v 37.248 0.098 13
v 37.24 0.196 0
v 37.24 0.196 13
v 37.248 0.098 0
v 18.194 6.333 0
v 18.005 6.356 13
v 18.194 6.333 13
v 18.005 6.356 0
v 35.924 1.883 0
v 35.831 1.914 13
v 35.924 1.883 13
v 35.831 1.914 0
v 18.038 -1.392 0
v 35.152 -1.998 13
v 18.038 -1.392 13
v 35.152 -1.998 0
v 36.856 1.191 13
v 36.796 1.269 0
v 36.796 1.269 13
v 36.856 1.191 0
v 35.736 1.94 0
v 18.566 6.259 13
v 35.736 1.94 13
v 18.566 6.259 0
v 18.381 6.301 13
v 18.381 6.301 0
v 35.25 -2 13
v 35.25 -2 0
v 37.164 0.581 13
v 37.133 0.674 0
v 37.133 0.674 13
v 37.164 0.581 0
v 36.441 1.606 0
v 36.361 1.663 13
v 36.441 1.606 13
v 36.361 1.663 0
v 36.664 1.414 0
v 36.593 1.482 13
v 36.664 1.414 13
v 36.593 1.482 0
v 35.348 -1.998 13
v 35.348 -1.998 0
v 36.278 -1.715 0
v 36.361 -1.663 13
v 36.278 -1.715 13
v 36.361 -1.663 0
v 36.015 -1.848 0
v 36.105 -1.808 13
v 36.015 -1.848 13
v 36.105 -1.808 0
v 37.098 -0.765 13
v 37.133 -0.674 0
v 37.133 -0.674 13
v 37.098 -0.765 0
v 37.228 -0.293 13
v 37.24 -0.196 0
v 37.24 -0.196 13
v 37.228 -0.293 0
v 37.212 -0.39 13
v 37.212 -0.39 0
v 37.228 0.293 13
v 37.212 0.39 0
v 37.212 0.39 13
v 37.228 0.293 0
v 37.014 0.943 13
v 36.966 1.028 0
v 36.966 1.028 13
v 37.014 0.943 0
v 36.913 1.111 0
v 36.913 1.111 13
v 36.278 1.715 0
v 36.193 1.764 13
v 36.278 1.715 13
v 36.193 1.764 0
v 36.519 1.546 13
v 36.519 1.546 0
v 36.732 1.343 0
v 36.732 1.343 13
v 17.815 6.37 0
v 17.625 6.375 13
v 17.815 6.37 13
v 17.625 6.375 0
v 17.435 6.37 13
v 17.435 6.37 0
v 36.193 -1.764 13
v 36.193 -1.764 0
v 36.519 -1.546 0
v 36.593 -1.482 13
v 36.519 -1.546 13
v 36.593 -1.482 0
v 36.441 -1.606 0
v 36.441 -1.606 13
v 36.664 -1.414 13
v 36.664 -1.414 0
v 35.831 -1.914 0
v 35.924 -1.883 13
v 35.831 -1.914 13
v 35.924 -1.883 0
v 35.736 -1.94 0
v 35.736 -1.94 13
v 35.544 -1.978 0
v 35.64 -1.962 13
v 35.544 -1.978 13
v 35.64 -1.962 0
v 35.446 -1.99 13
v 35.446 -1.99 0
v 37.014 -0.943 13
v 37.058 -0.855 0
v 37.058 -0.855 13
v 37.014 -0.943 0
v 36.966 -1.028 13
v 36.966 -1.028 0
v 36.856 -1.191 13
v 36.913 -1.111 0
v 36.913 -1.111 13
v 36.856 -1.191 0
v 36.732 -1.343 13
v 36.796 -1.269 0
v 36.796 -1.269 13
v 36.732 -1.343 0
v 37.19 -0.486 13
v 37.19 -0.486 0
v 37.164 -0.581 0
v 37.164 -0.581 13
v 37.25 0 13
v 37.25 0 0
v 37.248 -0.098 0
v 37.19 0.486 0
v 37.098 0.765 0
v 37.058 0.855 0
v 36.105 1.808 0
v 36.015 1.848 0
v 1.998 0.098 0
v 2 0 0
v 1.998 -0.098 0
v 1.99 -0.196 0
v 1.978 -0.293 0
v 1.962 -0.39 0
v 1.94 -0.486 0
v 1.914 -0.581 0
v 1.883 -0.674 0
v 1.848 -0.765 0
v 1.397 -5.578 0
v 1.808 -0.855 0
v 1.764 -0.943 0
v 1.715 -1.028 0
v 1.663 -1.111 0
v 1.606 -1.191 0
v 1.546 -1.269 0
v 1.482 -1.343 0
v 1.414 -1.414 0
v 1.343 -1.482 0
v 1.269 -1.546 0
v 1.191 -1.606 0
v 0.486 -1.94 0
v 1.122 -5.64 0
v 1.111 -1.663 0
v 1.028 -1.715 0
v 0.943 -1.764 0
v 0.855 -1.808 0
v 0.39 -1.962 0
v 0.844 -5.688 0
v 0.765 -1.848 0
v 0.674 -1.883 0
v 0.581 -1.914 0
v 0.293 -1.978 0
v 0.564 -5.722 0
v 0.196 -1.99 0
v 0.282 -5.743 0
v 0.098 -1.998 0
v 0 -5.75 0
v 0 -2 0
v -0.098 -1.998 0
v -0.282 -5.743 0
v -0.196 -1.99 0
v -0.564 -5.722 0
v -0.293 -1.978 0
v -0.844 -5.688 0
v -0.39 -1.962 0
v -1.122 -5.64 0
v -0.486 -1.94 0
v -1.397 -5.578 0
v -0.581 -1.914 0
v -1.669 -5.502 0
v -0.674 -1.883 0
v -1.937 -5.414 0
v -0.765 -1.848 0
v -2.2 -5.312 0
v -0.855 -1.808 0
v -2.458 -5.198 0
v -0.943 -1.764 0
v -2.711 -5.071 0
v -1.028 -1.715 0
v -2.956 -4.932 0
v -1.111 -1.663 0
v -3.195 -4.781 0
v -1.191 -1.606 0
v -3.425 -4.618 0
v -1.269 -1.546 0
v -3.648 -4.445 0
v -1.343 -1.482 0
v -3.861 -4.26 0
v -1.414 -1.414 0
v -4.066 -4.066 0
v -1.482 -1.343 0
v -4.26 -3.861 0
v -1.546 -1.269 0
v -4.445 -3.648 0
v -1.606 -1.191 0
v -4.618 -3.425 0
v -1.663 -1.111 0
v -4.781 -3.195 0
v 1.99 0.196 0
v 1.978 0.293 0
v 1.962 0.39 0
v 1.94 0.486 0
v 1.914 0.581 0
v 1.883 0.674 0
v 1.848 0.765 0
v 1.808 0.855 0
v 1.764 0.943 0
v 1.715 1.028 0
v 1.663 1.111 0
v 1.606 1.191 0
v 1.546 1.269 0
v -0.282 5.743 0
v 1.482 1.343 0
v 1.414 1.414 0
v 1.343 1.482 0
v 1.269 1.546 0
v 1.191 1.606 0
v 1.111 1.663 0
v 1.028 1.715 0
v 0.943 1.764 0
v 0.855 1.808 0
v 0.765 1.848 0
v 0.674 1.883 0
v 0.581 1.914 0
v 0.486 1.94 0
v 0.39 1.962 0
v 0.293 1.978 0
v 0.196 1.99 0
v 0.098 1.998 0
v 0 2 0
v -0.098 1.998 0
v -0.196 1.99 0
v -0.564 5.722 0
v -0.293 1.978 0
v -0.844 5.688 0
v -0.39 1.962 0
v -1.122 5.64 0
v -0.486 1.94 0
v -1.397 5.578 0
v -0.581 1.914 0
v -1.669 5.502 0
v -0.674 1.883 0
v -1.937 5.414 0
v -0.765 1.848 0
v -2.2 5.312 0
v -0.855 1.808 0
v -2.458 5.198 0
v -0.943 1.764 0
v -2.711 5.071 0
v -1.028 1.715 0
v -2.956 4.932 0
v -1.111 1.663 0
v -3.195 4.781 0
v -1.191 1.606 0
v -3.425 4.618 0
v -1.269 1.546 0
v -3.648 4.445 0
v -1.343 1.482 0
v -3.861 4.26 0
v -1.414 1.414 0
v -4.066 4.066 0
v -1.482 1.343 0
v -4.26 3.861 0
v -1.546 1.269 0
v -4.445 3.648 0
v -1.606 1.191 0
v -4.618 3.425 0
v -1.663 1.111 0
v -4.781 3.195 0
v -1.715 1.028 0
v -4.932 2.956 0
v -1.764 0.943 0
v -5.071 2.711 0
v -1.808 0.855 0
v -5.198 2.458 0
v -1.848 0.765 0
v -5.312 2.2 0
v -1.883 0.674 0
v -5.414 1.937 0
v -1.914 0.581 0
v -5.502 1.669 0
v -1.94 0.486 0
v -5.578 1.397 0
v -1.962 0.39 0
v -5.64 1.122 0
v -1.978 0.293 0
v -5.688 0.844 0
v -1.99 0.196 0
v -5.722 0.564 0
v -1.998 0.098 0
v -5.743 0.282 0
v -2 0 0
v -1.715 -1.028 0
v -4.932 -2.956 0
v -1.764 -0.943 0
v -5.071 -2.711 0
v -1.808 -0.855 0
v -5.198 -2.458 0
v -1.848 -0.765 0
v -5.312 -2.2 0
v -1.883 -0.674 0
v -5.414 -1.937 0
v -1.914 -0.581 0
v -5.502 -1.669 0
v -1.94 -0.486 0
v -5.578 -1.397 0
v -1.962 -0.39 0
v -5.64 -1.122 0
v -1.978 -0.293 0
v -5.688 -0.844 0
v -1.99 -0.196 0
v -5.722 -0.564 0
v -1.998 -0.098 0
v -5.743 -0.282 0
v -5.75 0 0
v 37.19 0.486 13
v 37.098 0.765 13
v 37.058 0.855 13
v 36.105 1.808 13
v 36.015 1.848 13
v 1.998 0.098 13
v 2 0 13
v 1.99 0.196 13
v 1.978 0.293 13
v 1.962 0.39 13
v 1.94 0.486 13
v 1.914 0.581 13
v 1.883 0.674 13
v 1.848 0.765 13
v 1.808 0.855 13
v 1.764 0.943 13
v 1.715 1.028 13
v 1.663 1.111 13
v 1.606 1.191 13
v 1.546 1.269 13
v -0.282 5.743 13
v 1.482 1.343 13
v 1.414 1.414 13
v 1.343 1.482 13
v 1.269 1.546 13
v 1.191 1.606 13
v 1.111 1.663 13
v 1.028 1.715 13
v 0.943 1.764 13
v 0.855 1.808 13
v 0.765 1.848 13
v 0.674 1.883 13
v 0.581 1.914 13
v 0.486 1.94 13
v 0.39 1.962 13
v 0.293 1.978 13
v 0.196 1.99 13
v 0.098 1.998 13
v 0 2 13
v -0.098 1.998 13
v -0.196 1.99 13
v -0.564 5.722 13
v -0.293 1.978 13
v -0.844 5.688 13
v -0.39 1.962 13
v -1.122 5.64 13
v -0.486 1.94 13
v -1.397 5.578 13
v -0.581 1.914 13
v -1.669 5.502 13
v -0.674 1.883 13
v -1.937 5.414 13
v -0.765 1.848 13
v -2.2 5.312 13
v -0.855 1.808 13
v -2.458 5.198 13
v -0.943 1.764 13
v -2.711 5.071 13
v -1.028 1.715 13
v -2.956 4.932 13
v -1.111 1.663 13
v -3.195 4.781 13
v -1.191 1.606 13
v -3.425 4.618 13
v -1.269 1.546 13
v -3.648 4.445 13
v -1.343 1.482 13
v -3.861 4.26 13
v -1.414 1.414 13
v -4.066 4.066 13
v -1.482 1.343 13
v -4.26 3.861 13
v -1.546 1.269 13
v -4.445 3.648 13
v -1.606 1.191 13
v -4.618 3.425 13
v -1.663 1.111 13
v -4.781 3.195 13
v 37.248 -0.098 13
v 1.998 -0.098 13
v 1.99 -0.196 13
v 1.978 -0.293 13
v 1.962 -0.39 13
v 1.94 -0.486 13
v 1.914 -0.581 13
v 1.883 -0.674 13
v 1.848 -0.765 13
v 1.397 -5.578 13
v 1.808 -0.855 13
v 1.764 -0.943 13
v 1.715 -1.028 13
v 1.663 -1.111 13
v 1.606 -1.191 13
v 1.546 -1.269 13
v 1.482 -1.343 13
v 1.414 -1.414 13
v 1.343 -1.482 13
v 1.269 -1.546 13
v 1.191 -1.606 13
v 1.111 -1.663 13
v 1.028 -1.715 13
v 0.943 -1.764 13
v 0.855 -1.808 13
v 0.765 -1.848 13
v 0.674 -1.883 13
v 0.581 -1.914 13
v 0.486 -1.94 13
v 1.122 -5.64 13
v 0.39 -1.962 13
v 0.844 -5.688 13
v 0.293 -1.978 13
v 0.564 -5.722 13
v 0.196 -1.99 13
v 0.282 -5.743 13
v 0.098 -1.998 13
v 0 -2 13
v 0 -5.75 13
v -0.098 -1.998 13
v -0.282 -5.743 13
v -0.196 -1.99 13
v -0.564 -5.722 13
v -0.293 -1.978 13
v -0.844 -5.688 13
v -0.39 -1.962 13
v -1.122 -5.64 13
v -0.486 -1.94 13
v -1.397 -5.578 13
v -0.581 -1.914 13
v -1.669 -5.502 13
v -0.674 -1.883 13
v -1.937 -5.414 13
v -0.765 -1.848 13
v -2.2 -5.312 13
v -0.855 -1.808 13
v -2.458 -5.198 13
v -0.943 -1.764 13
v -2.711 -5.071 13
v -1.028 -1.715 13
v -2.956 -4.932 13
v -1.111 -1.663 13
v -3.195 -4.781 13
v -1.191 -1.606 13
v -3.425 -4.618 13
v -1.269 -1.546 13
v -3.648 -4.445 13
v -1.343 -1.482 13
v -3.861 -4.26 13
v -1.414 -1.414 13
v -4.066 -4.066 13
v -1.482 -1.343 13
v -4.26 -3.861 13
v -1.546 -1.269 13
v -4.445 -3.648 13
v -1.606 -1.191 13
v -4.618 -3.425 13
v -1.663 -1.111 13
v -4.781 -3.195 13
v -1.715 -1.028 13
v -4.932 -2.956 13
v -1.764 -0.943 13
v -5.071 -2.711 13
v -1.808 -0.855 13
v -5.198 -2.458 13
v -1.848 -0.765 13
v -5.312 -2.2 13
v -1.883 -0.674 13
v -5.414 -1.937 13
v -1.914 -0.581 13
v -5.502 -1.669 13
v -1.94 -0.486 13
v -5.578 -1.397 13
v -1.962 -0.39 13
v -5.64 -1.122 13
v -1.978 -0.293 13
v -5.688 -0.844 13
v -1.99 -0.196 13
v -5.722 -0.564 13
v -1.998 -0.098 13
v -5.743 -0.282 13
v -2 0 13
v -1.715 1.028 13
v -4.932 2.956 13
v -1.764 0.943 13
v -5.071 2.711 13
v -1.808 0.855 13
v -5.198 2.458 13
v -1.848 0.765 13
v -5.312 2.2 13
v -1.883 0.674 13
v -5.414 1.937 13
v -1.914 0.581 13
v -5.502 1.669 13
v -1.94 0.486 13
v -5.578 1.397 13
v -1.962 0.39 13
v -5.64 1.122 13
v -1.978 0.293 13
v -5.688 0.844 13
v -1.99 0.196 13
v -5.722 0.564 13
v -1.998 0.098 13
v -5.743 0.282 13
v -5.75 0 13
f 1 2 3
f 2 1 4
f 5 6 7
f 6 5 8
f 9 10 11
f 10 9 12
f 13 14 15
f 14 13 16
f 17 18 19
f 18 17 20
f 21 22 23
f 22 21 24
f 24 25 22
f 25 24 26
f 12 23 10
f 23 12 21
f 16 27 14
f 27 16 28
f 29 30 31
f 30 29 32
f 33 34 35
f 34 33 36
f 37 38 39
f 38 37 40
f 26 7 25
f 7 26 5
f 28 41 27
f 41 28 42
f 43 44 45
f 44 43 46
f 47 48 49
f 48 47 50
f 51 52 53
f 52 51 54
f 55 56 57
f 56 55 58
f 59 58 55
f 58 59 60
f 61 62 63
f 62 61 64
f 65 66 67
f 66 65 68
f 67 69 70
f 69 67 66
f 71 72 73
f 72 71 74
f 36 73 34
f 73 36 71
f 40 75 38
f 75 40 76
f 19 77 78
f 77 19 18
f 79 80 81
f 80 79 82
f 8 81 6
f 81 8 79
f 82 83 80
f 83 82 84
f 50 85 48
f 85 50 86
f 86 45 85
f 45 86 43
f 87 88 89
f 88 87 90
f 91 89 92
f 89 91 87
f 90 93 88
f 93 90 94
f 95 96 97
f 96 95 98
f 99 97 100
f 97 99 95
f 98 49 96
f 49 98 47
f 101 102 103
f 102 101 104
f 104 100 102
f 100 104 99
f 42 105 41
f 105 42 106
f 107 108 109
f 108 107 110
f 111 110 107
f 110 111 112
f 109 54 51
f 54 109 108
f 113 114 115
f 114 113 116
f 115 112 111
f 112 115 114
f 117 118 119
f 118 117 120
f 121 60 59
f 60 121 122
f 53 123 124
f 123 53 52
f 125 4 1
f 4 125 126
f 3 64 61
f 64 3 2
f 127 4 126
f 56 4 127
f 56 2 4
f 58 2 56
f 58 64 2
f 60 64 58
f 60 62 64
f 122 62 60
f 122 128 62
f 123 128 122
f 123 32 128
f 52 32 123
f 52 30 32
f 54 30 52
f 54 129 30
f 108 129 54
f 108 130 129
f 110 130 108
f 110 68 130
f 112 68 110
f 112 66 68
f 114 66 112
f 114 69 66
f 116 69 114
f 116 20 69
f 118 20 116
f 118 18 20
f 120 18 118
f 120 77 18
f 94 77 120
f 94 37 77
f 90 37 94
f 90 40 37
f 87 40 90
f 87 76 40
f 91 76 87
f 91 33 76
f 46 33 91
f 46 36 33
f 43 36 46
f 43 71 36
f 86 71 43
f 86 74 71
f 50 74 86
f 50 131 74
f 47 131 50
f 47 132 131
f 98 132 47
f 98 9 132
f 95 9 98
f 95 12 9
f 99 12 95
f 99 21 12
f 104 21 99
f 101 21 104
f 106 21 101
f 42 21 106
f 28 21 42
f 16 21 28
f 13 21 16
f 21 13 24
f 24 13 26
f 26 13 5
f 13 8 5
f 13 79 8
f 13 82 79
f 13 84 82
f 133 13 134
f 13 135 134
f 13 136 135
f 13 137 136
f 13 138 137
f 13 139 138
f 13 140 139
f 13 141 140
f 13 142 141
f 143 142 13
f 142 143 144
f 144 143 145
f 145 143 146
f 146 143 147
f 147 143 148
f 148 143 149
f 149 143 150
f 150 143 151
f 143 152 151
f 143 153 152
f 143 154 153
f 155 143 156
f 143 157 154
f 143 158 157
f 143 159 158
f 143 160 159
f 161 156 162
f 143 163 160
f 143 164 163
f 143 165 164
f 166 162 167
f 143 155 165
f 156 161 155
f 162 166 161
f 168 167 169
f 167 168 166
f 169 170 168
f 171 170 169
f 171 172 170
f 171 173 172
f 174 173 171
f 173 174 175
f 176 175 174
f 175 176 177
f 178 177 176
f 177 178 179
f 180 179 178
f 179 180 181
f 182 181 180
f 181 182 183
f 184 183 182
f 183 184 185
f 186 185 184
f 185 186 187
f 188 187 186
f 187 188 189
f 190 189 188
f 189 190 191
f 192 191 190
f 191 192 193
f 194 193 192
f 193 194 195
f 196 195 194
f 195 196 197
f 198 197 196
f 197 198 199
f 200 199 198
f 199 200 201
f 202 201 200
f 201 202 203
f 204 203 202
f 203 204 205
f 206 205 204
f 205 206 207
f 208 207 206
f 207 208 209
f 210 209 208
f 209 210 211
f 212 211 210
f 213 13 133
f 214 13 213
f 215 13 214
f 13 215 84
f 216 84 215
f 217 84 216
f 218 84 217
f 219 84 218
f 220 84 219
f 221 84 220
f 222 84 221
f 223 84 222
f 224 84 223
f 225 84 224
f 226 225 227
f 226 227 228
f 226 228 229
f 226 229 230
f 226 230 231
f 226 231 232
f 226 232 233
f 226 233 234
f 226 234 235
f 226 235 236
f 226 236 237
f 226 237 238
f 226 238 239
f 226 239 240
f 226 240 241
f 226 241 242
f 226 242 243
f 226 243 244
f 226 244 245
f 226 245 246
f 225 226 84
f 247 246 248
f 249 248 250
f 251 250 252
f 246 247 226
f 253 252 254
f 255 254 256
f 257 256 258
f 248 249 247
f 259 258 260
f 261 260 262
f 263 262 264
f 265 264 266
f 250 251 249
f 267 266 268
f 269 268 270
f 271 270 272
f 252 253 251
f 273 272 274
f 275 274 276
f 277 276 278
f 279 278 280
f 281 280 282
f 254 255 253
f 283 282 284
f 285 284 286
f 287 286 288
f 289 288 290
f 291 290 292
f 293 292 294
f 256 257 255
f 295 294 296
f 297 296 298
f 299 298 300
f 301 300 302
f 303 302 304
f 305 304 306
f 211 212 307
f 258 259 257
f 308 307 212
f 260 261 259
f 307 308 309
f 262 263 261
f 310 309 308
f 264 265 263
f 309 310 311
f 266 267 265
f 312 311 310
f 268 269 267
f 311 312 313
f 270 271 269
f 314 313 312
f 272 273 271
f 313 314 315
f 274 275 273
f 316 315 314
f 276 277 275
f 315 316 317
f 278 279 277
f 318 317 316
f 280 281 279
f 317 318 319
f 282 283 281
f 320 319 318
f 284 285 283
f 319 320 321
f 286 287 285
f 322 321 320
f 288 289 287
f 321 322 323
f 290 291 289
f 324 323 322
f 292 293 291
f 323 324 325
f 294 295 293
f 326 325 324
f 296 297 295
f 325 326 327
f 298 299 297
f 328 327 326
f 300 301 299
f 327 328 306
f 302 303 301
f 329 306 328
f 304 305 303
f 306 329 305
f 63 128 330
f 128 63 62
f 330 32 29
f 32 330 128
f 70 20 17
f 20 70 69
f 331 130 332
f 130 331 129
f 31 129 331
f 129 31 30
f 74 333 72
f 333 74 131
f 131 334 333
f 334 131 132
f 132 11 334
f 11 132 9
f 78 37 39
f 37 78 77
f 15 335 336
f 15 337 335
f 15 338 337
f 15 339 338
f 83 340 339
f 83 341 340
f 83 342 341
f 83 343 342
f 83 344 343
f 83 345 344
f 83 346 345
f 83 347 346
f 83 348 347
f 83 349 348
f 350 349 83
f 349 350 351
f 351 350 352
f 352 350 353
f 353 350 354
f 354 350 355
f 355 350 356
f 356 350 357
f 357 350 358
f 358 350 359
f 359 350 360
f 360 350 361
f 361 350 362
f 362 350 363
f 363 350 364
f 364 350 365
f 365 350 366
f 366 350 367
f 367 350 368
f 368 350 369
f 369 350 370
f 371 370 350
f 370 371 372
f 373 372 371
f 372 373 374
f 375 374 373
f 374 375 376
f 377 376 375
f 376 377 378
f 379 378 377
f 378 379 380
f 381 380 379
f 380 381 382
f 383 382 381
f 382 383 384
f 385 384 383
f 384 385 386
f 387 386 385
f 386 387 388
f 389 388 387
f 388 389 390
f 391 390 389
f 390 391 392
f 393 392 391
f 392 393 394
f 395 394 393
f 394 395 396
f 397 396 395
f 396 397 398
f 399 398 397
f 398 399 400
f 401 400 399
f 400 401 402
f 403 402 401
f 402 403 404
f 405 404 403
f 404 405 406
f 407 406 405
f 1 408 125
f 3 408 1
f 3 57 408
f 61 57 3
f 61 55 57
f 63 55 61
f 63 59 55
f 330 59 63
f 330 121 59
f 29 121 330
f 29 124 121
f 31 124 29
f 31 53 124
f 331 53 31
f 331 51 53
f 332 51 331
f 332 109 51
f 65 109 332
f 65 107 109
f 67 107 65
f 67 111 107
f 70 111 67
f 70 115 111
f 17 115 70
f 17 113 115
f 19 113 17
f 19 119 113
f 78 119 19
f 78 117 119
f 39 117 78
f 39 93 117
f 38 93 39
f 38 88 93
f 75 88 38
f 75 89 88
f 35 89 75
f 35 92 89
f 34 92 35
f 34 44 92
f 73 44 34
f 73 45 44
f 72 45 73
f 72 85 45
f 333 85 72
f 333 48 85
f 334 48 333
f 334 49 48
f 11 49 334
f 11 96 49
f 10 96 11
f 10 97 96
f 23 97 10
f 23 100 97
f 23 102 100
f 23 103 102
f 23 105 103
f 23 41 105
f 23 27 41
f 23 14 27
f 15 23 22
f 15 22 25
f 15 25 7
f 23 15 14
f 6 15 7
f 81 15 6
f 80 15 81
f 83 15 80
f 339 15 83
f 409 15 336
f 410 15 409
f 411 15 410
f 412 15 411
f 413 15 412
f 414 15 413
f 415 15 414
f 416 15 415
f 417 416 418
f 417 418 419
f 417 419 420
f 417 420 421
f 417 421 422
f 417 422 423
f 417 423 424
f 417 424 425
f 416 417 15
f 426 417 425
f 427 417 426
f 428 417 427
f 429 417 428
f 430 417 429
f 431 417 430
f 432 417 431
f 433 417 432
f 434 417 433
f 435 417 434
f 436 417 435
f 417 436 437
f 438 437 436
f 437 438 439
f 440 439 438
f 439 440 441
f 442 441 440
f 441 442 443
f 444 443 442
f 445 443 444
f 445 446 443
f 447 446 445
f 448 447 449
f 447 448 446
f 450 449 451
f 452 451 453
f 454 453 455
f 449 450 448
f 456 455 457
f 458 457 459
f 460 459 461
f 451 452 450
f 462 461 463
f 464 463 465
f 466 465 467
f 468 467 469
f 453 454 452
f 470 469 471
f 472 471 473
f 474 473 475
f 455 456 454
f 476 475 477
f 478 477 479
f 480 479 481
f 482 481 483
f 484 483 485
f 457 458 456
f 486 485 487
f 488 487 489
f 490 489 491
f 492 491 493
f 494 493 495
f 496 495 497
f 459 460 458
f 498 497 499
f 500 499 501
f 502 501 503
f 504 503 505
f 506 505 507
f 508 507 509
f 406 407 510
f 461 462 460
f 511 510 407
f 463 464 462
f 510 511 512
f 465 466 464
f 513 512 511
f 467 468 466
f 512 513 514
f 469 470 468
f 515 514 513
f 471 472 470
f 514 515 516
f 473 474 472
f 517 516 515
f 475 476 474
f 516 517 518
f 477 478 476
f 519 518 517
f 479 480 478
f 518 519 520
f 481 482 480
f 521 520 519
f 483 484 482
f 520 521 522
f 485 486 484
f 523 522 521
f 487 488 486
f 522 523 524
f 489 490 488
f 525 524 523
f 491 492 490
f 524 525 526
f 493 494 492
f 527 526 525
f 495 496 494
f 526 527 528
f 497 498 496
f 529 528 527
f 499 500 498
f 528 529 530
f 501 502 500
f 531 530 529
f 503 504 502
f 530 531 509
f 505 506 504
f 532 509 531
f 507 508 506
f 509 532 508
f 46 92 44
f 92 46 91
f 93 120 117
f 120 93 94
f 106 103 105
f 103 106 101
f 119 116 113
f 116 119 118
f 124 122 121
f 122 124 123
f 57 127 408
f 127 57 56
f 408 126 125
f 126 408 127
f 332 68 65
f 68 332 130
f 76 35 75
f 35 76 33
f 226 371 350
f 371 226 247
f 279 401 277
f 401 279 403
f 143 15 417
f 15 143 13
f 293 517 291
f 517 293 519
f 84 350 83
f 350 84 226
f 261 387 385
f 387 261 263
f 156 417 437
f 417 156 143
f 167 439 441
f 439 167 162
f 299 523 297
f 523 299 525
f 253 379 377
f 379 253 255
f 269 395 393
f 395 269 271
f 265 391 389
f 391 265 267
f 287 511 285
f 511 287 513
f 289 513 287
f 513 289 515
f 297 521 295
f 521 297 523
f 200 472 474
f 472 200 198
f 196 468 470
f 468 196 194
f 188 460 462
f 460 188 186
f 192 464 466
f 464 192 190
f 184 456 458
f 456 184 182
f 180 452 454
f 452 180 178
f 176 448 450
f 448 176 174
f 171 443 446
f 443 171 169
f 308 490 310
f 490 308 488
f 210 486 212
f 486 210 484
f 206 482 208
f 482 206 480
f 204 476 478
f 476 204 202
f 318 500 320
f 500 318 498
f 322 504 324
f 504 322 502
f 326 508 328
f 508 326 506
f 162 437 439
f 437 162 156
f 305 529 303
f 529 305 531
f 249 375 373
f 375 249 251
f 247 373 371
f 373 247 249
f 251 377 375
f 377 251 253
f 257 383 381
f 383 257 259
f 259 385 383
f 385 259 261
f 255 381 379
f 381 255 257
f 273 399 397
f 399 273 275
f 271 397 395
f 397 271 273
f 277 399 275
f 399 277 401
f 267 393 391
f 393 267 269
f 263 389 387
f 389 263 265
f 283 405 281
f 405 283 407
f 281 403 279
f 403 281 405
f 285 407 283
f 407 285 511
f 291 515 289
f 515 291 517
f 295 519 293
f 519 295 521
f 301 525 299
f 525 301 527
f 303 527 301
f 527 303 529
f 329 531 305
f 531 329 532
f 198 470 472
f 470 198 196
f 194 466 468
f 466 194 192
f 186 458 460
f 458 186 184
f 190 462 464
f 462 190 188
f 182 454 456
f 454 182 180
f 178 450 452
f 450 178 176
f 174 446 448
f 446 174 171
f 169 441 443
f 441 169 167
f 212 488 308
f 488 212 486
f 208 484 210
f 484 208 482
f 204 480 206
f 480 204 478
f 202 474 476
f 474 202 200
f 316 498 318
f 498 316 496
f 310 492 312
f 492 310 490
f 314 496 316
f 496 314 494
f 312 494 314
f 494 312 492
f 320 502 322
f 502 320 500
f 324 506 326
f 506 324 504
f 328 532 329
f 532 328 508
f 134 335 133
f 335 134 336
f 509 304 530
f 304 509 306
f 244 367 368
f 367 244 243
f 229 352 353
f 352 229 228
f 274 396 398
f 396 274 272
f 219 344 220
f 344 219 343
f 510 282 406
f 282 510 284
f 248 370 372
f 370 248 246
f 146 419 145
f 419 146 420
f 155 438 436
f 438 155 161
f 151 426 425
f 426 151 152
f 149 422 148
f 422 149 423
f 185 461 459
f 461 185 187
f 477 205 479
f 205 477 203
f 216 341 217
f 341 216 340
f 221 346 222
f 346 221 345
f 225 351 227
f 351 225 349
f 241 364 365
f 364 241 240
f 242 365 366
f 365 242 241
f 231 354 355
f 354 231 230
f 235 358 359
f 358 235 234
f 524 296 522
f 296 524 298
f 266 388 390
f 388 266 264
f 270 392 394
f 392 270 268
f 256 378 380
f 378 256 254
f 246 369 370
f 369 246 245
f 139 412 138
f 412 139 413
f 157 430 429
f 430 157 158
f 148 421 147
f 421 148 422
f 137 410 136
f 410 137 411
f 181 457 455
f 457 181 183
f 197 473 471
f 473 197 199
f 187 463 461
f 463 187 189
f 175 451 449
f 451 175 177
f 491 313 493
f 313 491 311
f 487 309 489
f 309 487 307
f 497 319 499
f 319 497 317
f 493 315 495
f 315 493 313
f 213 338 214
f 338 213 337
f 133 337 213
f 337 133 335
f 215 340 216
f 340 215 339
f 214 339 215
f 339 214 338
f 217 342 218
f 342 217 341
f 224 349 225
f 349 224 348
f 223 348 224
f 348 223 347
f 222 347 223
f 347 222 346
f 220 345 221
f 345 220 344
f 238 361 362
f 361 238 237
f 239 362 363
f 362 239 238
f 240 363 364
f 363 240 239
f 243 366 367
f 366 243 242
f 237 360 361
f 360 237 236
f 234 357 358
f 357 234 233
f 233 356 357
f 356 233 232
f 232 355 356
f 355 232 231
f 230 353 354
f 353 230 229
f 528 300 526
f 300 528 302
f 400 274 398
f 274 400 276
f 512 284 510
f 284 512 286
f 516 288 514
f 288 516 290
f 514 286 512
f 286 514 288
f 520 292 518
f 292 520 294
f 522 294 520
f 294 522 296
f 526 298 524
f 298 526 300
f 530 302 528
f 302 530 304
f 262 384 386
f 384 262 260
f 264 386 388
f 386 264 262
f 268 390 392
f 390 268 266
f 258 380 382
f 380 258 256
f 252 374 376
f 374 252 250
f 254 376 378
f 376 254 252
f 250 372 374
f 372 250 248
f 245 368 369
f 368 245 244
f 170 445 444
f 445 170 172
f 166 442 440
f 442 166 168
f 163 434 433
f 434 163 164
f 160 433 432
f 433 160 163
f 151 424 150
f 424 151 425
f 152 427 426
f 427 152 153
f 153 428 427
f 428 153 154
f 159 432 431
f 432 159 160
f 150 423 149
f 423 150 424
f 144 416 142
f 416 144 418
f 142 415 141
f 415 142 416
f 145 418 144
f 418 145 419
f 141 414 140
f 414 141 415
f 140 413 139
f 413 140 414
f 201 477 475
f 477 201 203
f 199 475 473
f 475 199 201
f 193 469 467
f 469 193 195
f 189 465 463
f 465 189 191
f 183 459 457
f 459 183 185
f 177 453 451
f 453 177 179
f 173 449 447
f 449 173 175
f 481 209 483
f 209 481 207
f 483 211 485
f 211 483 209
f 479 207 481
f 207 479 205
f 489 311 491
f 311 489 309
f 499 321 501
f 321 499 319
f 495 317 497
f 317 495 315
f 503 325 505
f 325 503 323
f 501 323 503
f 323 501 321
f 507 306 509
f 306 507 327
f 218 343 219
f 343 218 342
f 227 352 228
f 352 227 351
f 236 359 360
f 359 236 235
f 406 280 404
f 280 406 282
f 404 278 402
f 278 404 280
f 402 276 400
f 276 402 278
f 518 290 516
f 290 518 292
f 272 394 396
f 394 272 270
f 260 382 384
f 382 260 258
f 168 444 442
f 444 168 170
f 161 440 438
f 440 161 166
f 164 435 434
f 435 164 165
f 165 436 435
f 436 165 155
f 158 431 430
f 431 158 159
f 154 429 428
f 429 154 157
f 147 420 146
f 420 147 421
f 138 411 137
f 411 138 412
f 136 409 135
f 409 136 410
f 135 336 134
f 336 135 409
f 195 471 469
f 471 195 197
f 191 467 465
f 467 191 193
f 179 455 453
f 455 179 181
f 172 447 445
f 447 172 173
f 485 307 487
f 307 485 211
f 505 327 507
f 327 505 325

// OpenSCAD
$fn = $preview ? 8 : 128;

width = 43;
height = 13;

thinend_od = 4;
fatend_od = 11.5;

screwhole = 4;

module anchor() {
    difference() {
        union() {
            distance = width - (thinend_od + fatend_od) / 2;
            hull() {
                translate([distance, 0, 0]) cylinder(d=thinend_od, h=height);
                translate([distance / 2, 2.5, 0]) cylinder(d=(fatend_od + thinend_od) / 2, h=height);
            }
            hull() {
                translate([distance / 2, 2.5, 0]) cylinder(d=(fatend_od + thinend_od) / 2, h=height);
                cylinder(d=fatend_od, h=height);
            }
        }
        translate([0, 0, -0.1]) cylinder(d=screwhole, h=height + 0.2);
    }
}

anchor();
